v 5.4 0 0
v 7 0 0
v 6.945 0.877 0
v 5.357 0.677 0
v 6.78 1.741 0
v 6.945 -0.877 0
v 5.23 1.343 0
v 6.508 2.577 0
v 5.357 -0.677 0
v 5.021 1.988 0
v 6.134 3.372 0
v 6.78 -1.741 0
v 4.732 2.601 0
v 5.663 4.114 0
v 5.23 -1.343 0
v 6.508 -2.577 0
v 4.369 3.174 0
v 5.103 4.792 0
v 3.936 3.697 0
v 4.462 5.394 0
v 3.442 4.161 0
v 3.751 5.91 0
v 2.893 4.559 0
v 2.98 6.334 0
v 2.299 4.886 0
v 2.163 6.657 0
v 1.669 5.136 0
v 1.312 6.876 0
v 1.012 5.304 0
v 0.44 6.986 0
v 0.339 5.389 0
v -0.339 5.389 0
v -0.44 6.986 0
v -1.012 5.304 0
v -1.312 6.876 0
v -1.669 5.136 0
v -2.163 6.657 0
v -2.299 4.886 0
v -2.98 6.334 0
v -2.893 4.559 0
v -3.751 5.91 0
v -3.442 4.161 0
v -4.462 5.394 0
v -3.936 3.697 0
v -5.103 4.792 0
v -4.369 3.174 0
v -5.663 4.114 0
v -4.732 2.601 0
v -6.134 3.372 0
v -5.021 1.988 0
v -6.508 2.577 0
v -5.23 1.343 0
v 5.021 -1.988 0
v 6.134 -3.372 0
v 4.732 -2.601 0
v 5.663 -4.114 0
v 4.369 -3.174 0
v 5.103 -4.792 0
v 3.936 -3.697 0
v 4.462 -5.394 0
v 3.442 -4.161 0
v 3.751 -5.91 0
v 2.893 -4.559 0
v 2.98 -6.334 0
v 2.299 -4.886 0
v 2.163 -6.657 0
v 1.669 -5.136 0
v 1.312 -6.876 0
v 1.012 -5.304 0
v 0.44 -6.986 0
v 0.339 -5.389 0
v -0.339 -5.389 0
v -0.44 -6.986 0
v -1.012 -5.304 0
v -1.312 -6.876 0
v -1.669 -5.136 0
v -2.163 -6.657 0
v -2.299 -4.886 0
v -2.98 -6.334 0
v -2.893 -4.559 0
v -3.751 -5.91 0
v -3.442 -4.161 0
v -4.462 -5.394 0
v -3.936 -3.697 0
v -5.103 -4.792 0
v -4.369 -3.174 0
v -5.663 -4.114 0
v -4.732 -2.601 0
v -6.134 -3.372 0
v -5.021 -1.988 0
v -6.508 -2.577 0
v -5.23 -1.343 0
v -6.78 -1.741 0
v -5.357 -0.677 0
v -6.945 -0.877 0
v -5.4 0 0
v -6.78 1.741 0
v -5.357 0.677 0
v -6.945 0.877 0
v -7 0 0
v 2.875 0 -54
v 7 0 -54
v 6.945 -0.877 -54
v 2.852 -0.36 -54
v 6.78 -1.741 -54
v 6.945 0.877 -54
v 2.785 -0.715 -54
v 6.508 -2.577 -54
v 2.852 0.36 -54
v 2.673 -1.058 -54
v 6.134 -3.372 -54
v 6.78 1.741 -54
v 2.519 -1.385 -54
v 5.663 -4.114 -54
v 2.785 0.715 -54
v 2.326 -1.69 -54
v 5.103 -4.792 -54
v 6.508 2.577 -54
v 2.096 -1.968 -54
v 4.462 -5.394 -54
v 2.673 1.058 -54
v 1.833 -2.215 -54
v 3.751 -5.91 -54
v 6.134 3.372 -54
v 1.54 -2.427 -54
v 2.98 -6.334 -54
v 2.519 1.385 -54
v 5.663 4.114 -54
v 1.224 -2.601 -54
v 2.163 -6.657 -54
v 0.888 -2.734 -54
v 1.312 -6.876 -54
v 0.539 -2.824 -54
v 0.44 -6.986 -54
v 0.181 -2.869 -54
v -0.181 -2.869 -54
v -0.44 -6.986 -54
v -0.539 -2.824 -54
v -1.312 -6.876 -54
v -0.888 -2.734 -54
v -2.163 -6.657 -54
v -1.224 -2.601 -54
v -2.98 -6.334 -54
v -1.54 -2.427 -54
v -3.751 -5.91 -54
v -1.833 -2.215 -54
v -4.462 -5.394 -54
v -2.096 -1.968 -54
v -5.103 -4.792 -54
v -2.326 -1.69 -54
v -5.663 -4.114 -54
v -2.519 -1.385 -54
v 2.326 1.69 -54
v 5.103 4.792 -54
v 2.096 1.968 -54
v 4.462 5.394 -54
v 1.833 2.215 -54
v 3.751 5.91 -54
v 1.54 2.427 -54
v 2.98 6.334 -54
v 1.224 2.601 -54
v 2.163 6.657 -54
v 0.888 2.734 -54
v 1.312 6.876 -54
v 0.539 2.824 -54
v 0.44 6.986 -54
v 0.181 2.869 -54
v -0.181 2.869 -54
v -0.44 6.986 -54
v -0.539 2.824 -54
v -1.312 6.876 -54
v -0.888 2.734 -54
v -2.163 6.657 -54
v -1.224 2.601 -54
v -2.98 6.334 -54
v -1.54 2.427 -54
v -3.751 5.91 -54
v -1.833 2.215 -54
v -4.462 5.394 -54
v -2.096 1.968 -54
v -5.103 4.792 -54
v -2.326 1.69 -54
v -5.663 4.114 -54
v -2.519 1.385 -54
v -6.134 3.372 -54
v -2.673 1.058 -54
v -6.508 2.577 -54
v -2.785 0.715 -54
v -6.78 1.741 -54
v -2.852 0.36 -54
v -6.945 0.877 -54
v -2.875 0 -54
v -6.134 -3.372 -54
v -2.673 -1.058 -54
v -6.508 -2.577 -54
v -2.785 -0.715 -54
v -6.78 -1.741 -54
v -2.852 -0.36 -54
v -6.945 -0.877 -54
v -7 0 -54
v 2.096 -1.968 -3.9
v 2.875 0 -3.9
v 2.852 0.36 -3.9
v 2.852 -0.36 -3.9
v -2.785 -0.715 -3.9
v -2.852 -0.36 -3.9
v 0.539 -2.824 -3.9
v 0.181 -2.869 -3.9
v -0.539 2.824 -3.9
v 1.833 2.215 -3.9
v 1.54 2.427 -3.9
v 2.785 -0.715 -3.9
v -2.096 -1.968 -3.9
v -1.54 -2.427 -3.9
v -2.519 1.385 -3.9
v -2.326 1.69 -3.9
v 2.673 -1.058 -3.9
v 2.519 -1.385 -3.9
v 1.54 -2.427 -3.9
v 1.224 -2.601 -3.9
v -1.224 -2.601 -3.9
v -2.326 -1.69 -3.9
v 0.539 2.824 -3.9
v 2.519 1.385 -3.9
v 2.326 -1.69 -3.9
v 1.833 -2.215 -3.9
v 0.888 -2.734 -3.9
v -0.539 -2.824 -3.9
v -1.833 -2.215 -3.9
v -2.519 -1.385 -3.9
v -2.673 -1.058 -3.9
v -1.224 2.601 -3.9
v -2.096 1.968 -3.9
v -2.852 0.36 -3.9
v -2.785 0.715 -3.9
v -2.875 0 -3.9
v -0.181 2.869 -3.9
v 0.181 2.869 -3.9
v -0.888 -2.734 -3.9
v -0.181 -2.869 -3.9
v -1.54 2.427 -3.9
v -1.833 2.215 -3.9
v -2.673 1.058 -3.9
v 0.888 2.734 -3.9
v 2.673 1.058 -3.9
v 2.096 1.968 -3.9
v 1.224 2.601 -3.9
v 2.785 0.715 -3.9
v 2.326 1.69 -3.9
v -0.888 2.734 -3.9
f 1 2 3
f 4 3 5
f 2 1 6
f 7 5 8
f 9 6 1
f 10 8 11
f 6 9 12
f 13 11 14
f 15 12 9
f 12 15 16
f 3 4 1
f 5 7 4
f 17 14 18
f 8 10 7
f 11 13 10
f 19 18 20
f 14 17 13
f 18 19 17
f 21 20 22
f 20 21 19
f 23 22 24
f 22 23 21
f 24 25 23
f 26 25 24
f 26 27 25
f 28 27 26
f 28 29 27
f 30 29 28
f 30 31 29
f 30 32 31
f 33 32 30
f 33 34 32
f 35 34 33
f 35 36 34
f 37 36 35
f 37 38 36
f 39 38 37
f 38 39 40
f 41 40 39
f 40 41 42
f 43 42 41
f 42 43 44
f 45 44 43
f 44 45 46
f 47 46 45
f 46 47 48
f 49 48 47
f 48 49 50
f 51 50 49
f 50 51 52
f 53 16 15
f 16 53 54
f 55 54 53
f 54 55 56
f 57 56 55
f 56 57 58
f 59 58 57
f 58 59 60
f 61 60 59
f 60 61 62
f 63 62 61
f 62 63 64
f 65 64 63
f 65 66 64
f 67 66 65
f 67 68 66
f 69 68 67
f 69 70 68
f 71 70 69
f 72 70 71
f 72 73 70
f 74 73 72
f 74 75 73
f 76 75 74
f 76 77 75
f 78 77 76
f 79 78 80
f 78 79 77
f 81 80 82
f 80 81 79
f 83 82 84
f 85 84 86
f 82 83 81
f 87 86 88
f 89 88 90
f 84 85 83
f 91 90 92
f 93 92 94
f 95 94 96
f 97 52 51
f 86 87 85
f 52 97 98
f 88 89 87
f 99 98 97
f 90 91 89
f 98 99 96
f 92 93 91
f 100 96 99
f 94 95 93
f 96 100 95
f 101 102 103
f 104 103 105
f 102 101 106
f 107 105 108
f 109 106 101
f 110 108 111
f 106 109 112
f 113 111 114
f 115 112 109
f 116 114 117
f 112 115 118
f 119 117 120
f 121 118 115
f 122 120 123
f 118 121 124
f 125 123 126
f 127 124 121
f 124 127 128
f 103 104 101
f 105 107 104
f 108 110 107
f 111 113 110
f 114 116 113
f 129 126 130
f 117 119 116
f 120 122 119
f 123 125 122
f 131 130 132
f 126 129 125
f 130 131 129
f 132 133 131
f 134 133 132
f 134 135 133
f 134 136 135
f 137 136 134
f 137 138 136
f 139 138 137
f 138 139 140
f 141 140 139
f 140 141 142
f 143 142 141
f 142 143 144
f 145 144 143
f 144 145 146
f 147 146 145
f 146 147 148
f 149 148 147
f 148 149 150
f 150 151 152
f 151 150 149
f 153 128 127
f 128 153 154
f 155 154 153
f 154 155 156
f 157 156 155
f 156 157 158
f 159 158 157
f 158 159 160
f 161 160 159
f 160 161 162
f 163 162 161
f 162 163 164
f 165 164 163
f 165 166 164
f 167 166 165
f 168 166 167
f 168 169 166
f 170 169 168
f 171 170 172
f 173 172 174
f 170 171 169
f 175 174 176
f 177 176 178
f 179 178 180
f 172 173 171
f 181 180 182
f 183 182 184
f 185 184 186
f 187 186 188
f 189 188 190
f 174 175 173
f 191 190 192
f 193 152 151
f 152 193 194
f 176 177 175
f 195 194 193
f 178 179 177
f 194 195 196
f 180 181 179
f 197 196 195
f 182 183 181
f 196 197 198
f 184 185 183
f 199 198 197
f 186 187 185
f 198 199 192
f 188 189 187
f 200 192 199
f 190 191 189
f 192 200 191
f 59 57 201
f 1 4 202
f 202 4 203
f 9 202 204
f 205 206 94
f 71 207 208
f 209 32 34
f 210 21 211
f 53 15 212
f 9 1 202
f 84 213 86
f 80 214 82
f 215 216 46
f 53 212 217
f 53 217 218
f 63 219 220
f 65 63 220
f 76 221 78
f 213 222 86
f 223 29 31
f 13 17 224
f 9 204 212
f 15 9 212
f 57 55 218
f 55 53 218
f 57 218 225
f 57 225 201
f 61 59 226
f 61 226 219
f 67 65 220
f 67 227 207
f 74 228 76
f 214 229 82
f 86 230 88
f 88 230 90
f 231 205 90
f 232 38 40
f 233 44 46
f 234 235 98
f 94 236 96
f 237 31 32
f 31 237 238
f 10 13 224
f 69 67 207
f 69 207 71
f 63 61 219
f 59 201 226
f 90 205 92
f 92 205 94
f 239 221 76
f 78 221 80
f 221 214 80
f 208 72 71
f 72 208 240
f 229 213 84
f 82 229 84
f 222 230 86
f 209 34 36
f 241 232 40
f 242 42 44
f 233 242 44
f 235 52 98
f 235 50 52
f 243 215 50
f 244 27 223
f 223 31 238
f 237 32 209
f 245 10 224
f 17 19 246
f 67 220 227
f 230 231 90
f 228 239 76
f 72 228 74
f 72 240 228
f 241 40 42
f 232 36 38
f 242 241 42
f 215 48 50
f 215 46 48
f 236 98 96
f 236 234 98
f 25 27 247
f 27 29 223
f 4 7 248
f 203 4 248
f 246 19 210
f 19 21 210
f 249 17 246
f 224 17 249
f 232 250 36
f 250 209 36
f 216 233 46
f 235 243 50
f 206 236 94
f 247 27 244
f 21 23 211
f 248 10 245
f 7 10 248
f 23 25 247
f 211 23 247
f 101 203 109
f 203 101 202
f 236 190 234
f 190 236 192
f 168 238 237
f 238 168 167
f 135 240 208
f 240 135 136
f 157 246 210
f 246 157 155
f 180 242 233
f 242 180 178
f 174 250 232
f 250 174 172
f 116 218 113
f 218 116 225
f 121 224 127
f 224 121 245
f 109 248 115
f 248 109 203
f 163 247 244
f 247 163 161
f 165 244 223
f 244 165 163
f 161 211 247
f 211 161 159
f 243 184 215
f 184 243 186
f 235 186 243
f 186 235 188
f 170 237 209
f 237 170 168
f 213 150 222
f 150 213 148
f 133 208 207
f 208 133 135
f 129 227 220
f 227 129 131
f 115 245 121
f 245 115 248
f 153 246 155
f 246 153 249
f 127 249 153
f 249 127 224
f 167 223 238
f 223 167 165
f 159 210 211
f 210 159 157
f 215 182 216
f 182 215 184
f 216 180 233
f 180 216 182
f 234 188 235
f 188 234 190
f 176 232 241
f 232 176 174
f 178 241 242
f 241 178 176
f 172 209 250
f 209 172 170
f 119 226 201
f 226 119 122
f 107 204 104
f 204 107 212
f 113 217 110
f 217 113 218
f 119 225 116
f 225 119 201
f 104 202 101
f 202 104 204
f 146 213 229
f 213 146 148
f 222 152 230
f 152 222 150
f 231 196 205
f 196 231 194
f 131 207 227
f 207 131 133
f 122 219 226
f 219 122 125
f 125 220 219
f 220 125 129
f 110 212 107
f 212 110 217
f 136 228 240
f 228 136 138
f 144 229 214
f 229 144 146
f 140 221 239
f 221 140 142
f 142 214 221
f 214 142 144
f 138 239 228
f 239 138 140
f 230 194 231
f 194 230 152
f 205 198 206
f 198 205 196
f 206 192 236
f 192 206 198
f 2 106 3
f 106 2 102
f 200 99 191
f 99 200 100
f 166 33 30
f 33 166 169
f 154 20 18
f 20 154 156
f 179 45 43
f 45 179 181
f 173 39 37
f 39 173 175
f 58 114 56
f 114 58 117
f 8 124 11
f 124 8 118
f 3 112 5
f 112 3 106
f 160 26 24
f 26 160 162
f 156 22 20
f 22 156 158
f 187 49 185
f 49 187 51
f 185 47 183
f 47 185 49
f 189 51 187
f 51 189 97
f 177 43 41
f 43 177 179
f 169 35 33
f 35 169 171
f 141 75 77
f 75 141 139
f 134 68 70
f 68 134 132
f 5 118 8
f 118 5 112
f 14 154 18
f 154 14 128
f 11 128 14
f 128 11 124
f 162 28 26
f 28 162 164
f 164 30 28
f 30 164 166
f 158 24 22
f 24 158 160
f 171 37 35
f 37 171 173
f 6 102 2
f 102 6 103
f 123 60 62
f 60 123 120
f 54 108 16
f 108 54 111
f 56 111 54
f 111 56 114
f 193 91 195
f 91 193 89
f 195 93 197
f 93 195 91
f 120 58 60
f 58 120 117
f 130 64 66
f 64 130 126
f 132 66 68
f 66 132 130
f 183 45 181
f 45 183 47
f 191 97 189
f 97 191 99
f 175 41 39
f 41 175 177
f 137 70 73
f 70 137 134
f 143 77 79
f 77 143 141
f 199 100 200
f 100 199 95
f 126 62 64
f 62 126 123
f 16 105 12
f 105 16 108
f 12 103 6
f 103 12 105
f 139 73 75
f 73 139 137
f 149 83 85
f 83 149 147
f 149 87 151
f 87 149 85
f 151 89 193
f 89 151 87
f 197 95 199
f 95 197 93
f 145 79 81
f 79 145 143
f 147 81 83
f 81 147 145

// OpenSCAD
$fn = 50;


difference() {
	union() {
		translate(v = [0, 0, -54.0000000000]) {
			cylinder(h = 54, r = 7.0000000000);
		}
		cylinder(h = 0, r = 10.0000000000);
	}
	union() {
		translate(v = [0, 0, 0]) {
			rotate(a = [0, 0, 0]) {
				difference() {
					union() {
						#translate(v = [0, 0, -54.0000000000]) {
							cylinder(h = 54, r = 2.6000000000);
						}
						#translate(v = [0, 0, -3.9000000000]) {
							cylinder(h = 3.9000000000, r = 7.0000000000, r1 = 2.8750000000, r2 = 5.4000000000);
						}
						#translate(v = [0, 0, -54.0000000000]) {
							cylinder(h = 54, r = 2.8750000000);
						}
						#translate(v = [0, 0, -54.0000000000]) {
							cylinder(h = 54, r = 2.6000000000);
						}
					}
					union();
				}
			}
		}
	}
}
